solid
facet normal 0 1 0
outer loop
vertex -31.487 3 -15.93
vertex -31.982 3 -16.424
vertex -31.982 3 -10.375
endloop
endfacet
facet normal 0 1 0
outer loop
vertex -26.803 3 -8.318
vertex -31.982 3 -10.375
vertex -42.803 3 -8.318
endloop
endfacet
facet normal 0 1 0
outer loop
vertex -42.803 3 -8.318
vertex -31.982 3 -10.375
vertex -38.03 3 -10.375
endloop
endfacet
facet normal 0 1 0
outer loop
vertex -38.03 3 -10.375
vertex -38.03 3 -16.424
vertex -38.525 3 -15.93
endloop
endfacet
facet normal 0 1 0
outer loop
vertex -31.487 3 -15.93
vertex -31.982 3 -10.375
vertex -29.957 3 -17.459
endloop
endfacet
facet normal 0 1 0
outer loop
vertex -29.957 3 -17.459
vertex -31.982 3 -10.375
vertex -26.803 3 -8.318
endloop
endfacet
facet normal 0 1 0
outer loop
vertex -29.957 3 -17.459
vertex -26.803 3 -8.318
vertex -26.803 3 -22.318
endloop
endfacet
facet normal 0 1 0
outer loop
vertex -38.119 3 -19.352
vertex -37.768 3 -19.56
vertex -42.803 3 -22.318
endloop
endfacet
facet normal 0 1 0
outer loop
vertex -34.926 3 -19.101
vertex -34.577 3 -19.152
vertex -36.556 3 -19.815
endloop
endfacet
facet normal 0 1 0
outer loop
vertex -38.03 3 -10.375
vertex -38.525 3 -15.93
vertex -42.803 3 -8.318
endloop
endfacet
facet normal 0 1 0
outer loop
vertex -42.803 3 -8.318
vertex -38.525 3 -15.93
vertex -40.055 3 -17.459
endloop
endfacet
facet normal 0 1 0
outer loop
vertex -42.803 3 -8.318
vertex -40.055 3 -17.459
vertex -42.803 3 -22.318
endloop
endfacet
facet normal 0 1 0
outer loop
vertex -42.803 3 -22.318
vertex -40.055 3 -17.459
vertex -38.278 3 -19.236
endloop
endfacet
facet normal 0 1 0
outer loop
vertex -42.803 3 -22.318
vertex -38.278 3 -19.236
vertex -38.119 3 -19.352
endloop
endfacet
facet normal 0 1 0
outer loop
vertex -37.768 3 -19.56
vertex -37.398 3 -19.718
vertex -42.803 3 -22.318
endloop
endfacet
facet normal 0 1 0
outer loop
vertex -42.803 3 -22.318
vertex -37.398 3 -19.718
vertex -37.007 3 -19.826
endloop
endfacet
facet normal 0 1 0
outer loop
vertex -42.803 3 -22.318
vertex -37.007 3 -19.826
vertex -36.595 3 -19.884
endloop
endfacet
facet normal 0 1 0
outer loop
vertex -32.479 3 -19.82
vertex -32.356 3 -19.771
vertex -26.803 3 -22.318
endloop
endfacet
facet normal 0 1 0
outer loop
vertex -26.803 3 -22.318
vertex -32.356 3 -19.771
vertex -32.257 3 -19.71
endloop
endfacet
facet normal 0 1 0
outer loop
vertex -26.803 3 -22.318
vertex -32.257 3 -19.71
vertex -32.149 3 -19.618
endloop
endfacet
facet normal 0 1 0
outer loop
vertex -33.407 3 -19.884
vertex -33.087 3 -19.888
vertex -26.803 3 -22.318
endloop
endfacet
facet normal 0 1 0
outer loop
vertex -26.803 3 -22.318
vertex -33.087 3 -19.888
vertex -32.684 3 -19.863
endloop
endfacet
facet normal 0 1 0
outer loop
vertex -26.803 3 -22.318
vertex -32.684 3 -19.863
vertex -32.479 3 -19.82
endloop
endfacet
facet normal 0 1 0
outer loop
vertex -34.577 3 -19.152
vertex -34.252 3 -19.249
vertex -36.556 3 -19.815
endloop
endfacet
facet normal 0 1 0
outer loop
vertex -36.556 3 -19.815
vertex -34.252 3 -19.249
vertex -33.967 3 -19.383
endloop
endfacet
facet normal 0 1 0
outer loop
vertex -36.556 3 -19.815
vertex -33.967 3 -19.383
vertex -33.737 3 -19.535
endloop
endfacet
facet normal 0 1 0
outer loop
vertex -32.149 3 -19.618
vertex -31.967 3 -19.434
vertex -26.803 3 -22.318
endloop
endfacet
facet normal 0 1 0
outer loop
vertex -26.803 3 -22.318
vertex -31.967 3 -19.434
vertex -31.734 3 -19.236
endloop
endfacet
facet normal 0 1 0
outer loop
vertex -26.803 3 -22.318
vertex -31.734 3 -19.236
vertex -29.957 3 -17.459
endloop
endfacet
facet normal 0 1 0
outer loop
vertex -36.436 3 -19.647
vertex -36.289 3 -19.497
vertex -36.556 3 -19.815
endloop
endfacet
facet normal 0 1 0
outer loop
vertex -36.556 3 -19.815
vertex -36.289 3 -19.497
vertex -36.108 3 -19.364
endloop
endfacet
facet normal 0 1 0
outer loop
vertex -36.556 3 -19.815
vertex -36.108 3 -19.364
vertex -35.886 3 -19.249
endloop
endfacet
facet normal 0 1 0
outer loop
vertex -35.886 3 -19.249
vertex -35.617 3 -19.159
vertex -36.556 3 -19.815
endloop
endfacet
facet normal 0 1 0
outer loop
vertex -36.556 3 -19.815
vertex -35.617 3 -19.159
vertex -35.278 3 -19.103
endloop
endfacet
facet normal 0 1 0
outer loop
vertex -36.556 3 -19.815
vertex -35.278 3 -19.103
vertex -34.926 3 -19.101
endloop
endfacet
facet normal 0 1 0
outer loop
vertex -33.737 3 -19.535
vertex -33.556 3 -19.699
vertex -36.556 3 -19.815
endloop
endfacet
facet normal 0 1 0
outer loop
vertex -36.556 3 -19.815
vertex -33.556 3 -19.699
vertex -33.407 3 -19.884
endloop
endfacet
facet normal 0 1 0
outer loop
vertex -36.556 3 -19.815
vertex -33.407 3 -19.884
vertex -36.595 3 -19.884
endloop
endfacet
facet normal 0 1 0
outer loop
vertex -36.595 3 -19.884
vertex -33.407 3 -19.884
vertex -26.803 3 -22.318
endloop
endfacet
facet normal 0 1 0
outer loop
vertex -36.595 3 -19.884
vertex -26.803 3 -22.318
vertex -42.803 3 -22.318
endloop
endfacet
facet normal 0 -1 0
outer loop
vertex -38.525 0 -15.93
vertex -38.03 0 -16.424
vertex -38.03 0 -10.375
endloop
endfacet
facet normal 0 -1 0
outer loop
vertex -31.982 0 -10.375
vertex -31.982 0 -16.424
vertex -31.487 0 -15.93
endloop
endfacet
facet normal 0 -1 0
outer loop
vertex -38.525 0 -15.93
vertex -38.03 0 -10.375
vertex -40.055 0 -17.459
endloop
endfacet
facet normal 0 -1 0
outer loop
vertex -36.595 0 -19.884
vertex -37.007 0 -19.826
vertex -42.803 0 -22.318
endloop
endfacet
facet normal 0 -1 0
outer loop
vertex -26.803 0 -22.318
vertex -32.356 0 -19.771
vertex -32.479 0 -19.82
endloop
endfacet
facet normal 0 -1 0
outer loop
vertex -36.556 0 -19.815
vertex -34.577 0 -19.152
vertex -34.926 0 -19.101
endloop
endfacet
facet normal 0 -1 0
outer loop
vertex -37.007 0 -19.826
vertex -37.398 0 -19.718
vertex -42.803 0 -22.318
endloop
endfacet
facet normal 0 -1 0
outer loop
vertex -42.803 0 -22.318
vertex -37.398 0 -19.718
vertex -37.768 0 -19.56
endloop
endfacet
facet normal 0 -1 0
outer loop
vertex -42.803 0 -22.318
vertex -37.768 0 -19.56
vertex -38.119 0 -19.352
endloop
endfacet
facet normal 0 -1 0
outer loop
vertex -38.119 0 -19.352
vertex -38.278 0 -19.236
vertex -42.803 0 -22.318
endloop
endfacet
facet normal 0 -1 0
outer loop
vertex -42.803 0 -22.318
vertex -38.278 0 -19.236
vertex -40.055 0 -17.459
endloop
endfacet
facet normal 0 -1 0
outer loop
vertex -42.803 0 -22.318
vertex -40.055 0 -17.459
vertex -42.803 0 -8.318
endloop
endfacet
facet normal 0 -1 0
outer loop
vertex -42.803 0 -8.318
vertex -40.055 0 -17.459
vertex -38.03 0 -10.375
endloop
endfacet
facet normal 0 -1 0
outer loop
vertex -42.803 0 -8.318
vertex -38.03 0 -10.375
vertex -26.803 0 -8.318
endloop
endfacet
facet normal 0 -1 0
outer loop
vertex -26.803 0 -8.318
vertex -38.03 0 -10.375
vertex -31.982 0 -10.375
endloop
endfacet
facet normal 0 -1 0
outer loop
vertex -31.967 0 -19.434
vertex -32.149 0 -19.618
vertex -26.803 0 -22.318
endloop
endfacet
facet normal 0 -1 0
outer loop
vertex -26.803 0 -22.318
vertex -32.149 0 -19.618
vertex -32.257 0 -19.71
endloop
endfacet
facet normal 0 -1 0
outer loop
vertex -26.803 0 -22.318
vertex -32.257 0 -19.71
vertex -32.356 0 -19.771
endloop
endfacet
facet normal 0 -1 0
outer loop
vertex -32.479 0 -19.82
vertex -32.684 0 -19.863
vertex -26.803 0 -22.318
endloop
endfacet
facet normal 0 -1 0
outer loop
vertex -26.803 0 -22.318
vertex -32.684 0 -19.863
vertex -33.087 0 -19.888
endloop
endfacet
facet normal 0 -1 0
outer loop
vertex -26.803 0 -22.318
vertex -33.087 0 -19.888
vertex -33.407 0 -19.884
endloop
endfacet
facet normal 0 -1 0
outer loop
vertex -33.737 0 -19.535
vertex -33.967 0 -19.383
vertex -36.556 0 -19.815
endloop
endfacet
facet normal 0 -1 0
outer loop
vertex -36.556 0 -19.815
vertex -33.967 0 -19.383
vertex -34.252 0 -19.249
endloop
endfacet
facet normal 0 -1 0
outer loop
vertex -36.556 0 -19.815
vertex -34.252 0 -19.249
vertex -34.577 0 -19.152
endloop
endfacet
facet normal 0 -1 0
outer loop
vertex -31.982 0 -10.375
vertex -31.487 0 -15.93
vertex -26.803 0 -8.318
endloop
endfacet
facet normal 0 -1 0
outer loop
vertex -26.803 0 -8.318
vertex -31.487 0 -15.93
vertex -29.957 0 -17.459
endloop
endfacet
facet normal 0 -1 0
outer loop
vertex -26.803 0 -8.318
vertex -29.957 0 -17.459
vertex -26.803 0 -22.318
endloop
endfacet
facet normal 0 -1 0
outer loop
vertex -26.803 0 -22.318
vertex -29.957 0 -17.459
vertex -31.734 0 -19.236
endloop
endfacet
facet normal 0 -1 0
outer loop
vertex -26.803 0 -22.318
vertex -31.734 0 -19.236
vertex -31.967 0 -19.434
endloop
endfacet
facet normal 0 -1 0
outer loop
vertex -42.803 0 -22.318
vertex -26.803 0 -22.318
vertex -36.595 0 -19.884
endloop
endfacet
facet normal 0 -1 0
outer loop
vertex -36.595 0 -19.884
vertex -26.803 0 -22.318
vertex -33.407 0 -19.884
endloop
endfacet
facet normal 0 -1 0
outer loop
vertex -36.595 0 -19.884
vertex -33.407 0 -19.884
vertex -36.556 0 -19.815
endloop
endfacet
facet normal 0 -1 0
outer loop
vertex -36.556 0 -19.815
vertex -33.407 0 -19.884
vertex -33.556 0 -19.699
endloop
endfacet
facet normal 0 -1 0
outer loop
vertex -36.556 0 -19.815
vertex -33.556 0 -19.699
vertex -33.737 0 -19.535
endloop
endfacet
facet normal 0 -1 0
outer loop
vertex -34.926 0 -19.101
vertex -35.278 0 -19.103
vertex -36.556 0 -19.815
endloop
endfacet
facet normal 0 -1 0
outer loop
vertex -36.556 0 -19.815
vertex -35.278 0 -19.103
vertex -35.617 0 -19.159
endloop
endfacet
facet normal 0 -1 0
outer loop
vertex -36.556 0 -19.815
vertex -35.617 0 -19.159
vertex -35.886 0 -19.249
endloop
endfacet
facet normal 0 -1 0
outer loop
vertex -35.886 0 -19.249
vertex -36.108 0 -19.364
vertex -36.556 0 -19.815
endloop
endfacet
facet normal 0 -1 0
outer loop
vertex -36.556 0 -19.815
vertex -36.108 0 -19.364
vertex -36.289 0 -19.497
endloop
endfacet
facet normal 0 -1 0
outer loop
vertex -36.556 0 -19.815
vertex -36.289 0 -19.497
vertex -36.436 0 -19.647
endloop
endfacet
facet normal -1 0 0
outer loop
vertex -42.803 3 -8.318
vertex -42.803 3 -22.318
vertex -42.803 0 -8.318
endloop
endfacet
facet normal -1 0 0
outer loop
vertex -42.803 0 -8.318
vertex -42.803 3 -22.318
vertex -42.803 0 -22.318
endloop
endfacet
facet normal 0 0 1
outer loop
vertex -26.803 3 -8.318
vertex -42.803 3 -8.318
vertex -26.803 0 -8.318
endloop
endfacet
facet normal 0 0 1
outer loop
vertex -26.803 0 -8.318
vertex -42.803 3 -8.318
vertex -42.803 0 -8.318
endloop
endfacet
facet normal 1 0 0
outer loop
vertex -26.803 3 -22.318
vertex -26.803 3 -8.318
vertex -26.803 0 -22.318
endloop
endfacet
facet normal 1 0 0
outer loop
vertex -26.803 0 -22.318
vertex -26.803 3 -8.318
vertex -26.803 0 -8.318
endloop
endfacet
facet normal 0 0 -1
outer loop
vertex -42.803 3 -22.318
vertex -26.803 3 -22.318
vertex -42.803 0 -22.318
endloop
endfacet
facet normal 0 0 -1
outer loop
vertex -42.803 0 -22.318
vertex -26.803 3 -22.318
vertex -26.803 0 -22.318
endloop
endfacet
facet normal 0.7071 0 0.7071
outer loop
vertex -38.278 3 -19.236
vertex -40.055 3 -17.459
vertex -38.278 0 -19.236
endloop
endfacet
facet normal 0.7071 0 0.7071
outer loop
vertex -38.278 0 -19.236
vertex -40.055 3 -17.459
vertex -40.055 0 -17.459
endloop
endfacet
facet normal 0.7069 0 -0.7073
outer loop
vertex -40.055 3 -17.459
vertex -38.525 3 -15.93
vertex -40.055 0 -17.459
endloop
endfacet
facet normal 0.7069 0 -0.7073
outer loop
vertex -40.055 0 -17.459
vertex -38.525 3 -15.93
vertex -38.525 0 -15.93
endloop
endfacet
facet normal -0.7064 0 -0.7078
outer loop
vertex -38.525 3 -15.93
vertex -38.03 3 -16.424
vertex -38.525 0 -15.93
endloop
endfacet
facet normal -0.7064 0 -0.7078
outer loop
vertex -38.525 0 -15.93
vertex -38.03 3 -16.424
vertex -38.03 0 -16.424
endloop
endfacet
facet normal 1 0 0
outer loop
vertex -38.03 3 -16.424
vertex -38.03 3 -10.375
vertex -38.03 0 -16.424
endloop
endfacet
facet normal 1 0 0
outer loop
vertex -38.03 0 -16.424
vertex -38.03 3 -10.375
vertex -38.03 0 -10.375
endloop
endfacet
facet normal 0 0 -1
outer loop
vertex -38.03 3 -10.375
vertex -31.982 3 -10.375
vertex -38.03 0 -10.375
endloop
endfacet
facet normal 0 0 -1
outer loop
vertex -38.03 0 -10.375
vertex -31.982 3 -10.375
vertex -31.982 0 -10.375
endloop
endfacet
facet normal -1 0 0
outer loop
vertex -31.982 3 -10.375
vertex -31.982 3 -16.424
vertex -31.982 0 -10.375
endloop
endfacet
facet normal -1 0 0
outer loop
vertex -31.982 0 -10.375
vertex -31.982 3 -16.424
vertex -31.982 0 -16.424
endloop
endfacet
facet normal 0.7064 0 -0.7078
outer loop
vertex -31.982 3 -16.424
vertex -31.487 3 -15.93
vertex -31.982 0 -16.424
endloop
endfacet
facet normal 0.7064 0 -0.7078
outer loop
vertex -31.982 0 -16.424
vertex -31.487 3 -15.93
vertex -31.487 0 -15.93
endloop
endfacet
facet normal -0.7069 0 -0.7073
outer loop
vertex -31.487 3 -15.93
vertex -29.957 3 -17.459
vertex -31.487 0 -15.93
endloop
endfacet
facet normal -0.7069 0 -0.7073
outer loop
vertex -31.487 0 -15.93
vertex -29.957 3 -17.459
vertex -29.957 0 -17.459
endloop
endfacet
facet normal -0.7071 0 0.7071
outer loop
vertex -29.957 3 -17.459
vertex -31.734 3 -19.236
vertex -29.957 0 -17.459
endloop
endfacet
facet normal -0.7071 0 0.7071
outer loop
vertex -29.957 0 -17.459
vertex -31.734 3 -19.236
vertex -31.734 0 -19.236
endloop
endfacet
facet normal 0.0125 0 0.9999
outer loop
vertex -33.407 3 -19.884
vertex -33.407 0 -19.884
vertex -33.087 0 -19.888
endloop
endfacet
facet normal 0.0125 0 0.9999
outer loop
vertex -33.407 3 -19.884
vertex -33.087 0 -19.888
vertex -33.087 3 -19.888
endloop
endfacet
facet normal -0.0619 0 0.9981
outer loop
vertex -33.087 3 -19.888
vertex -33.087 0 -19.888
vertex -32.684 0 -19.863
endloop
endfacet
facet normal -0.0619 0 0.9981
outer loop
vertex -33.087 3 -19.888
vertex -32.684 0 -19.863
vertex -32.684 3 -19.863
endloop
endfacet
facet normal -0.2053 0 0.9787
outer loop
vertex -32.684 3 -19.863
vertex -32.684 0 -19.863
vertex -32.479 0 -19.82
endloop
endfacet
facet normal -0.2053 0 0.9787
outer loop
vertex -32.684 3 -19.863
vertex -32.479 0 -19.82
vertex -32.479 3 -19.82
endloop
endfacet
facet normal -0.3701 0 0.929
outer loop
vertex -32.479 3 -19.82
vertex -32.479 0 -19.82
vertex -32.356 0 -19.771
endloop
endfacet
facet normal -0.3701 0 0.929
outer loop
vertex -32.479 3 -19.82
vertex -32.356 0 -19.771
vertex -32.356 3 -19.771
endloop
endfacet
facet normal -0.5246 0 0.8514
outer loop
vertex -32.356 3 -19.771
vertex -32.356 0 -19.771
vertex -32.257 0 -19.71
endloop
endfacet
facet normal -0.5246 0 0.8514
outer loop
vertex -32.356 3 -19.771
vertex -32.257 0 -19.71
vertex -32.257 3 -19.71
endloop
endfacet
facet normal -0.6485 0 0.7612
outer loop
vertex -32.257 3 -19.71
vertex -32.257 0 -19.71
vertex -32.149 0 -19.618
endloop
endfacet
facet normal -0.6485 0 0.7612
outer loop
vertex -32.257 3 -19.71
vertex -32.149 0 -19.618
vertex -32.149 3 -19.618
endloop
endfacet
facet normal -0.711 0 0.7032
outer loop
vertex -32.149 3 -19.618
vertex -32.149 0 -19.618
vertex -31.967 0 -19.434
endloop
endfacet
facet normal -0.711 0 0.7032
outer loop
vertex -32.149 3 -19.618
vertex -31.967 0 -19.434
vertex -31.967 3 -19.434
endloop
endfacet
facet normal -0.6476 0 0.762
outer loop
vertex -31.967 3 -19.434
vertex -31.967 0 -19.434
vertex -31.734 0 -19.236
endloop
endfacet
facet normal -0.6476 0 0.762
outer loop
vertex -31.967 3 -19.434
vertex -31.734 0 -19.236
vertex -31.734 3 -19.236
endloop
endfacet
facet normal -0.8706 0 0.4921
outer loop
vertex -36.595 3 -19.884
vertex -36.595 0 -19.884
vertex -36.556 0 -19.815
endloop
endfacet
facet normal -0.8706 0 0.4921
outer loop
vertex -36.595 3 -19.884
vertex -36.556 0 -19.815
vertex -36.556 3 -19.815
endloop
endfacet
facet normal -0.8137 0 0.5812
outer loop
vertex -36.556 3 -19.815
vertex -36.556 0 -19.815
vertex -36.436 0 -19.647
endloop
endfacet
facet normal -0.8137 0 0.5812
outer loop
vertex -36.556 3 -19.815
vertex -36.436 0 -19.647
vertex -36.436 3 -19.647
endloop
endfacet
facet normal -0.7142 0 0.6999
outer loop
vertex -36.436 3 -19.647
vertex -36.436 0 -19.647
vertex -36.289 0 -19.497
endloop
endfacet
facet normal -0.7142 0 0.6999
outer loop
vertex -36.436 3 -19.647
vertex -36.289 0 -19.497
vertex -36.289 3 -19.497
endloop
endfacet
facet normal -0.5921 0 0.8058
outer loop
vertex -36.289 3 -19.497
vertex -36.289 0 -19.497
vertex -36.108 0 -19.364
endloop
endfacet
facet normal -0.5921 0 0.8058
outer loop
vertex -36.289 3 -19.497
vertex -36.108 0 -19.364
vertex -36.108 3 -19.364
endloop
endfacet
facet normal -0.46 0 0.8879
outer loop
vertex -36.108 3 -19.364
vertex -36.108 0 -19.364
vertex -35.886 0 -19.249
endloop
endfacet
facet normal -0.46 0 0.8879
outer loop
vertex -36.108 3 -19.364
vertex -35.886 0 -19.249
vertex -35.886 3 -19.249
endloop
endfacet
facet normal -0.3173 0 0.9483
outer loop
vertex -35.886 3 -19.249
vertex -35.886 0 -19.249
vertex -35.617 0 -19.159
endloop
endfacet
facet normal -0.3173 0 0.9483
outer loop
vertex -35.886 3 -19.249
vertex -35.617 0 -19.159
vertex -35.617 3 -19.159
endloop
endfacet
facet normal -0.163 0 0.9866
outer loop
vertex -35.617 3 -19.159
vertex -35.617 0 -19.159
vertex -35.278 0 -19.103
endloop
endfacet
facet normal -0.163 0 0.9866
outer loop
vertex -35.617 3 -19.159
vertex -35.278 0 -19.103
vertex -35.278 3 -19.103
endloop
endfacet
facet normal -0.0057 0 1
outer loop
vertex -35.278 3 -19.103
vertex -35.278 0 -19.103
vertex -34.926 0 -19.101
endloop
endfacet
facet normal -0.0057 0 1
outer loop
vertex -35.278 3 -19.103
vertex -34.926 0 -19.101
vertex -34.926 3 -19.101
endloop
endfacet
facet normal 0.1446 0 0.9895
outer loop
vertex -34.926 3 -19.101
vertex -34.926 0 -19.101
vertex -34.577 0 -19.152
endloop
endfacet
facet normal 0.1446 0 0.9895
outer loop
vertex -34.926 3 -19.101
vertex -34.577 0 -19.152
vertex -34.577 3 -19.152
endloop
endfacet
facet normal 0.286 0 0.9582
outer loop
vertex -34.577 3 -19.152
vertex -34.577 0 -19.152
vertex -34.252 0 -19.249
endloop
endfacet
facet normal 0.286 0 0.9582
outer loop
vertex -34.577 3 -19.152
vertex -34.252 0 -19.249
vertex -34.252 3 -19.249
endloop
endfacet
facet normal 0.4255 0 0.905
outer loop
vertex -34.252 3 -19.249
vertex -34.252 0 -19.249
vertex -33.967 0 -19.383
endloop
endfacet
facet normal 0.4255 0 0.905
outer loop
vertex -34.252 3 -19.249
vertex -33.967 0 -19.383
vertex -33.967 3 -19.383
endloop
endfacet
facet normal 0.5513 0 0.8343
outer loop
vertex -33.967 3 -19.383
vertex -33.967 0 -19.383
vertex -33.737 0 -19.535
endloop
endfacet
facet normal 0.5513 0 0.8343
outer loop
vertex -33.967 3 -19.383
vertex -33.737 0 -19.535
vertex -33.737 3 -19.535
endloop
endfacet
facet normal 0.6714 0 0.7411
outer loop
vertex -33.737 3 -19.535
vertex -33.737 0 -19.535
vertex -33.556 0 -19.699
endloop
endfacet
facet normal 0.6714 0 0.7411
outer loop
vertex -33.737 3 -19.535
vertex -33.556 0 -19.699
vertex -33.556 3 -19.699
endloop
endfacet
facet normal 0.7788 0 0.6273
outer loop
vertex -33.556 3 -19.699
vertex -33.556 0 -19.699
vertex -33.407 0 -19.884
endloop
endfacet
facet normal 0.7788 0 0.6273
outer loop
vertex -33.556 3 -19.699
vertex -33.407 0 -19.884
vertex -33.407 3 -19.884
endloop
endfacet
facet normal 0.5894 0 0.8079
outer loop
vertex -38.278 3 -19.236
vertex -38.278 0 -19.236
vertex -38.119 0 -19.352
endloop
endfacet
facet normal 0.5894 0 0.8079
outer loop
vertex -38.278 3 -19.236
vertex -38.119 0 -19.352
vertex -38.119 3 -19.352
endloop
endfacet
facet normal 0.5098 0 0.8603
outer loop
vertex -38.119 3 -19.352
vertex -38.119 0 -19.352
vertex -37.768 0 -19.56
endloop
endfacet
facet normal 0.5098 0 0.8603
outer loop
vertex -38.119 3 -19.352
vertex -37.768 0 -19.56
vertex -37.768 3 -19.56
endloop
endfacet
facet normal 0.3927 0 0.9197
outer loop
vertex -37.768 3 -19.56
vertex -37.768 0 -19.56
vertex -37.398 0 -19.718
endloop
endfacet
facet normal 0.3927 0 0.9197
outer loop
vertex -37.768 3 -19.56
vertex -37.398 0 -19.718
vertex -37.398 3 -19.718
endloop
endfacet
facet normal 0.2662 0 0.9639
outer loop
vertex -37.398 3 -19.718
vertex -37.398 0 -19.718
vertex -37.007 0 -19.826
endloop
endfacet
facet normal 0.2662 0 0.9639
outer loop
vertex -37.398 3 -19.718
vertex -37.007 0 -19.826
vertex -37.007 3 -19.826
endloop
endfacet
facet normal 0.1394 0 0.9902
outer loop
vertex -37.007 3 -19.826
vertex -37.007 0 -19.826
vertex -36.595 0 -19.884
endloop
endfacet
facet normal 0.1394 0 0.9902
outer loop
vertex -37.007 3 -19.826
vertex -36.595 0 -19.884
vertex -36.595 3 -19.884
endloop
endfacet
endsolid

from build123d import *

# Parameters (mm, degrees)
SKETCH1_W           = 16
SKETCH1_H           = 14
BOSS_EXTRUDE1_DEPTH = 3


with BuildPart() as part:
    # Sketch1 → Boss-Extrude1 (new body)
    with BuildSketch(Plane(origin=(0, 0, 0), x_dir=(1, 0, 0), z_dir=(0, 1, 0))):
        with Locations((-34.802547771, 15.318471338)):
            Rectangle(SKETCH1_W, SKETCH1_H)
        with BuildLine():
            Line((-40.05451323, 17.459486991), (-38.524659604, 15.929633365))
            Line((-38.524659604, 15.929633365), (-38.030399201, 16.423893767))
            Line((-38.030399201, 16.423893767), (-38.030399201, 10.37508789))
            Line((-38.030399201, 10.37508789), (-31.981593325, 10.37508789))
            Line((-31.981593325, 10.37508789), (-31.981593325, 16.423893767))
            Line((-31.981593325, 16.423893767), (-31.487332922, 15.929633365))
            Line((-31.487332922, 15.929633365), (-29.957479296, 17.459486991))
            Line((-29.957479296, 17.459486991), (-31.734463123, 19.236470819))
            add(Edge.make_bspline(
                [(-31.734463123, 19.236470819), (-32.317966026, 19.664517133), (-32.090545187, 19.92760941), (-33.406999381, 19.883716584)],
                knots=[0, 0, 0, 0, 1, 1, 1, 1], degree=3))
            add(Edge.make_bspline(
                [(-36.594690414, 19.883716584), (-36.00950924, 18.767110628), (-34.074320208, 18.900131332), (-33.406999381, 19.883716584)],
                knots=[0, 0, 0, 0, 1, 1, 1, 1], degree=3))
            add(Edge.make_bspline(
                [(-38.277529403, 19.236470819), (-37.529085744, 19.813493214), (-36.594690414, 19.883716584)],
                knots=[0, 0, 0, 1, 1, 1], degree=2))
            Line((-38.277529403, 19.236470819), (-40.05451323, 17.459486991))
        make_face(mode=Mode.SUBTRACT)
    extrude(amount=BOSS_EXTRUDE1_DEPTH)


solid = part.part
